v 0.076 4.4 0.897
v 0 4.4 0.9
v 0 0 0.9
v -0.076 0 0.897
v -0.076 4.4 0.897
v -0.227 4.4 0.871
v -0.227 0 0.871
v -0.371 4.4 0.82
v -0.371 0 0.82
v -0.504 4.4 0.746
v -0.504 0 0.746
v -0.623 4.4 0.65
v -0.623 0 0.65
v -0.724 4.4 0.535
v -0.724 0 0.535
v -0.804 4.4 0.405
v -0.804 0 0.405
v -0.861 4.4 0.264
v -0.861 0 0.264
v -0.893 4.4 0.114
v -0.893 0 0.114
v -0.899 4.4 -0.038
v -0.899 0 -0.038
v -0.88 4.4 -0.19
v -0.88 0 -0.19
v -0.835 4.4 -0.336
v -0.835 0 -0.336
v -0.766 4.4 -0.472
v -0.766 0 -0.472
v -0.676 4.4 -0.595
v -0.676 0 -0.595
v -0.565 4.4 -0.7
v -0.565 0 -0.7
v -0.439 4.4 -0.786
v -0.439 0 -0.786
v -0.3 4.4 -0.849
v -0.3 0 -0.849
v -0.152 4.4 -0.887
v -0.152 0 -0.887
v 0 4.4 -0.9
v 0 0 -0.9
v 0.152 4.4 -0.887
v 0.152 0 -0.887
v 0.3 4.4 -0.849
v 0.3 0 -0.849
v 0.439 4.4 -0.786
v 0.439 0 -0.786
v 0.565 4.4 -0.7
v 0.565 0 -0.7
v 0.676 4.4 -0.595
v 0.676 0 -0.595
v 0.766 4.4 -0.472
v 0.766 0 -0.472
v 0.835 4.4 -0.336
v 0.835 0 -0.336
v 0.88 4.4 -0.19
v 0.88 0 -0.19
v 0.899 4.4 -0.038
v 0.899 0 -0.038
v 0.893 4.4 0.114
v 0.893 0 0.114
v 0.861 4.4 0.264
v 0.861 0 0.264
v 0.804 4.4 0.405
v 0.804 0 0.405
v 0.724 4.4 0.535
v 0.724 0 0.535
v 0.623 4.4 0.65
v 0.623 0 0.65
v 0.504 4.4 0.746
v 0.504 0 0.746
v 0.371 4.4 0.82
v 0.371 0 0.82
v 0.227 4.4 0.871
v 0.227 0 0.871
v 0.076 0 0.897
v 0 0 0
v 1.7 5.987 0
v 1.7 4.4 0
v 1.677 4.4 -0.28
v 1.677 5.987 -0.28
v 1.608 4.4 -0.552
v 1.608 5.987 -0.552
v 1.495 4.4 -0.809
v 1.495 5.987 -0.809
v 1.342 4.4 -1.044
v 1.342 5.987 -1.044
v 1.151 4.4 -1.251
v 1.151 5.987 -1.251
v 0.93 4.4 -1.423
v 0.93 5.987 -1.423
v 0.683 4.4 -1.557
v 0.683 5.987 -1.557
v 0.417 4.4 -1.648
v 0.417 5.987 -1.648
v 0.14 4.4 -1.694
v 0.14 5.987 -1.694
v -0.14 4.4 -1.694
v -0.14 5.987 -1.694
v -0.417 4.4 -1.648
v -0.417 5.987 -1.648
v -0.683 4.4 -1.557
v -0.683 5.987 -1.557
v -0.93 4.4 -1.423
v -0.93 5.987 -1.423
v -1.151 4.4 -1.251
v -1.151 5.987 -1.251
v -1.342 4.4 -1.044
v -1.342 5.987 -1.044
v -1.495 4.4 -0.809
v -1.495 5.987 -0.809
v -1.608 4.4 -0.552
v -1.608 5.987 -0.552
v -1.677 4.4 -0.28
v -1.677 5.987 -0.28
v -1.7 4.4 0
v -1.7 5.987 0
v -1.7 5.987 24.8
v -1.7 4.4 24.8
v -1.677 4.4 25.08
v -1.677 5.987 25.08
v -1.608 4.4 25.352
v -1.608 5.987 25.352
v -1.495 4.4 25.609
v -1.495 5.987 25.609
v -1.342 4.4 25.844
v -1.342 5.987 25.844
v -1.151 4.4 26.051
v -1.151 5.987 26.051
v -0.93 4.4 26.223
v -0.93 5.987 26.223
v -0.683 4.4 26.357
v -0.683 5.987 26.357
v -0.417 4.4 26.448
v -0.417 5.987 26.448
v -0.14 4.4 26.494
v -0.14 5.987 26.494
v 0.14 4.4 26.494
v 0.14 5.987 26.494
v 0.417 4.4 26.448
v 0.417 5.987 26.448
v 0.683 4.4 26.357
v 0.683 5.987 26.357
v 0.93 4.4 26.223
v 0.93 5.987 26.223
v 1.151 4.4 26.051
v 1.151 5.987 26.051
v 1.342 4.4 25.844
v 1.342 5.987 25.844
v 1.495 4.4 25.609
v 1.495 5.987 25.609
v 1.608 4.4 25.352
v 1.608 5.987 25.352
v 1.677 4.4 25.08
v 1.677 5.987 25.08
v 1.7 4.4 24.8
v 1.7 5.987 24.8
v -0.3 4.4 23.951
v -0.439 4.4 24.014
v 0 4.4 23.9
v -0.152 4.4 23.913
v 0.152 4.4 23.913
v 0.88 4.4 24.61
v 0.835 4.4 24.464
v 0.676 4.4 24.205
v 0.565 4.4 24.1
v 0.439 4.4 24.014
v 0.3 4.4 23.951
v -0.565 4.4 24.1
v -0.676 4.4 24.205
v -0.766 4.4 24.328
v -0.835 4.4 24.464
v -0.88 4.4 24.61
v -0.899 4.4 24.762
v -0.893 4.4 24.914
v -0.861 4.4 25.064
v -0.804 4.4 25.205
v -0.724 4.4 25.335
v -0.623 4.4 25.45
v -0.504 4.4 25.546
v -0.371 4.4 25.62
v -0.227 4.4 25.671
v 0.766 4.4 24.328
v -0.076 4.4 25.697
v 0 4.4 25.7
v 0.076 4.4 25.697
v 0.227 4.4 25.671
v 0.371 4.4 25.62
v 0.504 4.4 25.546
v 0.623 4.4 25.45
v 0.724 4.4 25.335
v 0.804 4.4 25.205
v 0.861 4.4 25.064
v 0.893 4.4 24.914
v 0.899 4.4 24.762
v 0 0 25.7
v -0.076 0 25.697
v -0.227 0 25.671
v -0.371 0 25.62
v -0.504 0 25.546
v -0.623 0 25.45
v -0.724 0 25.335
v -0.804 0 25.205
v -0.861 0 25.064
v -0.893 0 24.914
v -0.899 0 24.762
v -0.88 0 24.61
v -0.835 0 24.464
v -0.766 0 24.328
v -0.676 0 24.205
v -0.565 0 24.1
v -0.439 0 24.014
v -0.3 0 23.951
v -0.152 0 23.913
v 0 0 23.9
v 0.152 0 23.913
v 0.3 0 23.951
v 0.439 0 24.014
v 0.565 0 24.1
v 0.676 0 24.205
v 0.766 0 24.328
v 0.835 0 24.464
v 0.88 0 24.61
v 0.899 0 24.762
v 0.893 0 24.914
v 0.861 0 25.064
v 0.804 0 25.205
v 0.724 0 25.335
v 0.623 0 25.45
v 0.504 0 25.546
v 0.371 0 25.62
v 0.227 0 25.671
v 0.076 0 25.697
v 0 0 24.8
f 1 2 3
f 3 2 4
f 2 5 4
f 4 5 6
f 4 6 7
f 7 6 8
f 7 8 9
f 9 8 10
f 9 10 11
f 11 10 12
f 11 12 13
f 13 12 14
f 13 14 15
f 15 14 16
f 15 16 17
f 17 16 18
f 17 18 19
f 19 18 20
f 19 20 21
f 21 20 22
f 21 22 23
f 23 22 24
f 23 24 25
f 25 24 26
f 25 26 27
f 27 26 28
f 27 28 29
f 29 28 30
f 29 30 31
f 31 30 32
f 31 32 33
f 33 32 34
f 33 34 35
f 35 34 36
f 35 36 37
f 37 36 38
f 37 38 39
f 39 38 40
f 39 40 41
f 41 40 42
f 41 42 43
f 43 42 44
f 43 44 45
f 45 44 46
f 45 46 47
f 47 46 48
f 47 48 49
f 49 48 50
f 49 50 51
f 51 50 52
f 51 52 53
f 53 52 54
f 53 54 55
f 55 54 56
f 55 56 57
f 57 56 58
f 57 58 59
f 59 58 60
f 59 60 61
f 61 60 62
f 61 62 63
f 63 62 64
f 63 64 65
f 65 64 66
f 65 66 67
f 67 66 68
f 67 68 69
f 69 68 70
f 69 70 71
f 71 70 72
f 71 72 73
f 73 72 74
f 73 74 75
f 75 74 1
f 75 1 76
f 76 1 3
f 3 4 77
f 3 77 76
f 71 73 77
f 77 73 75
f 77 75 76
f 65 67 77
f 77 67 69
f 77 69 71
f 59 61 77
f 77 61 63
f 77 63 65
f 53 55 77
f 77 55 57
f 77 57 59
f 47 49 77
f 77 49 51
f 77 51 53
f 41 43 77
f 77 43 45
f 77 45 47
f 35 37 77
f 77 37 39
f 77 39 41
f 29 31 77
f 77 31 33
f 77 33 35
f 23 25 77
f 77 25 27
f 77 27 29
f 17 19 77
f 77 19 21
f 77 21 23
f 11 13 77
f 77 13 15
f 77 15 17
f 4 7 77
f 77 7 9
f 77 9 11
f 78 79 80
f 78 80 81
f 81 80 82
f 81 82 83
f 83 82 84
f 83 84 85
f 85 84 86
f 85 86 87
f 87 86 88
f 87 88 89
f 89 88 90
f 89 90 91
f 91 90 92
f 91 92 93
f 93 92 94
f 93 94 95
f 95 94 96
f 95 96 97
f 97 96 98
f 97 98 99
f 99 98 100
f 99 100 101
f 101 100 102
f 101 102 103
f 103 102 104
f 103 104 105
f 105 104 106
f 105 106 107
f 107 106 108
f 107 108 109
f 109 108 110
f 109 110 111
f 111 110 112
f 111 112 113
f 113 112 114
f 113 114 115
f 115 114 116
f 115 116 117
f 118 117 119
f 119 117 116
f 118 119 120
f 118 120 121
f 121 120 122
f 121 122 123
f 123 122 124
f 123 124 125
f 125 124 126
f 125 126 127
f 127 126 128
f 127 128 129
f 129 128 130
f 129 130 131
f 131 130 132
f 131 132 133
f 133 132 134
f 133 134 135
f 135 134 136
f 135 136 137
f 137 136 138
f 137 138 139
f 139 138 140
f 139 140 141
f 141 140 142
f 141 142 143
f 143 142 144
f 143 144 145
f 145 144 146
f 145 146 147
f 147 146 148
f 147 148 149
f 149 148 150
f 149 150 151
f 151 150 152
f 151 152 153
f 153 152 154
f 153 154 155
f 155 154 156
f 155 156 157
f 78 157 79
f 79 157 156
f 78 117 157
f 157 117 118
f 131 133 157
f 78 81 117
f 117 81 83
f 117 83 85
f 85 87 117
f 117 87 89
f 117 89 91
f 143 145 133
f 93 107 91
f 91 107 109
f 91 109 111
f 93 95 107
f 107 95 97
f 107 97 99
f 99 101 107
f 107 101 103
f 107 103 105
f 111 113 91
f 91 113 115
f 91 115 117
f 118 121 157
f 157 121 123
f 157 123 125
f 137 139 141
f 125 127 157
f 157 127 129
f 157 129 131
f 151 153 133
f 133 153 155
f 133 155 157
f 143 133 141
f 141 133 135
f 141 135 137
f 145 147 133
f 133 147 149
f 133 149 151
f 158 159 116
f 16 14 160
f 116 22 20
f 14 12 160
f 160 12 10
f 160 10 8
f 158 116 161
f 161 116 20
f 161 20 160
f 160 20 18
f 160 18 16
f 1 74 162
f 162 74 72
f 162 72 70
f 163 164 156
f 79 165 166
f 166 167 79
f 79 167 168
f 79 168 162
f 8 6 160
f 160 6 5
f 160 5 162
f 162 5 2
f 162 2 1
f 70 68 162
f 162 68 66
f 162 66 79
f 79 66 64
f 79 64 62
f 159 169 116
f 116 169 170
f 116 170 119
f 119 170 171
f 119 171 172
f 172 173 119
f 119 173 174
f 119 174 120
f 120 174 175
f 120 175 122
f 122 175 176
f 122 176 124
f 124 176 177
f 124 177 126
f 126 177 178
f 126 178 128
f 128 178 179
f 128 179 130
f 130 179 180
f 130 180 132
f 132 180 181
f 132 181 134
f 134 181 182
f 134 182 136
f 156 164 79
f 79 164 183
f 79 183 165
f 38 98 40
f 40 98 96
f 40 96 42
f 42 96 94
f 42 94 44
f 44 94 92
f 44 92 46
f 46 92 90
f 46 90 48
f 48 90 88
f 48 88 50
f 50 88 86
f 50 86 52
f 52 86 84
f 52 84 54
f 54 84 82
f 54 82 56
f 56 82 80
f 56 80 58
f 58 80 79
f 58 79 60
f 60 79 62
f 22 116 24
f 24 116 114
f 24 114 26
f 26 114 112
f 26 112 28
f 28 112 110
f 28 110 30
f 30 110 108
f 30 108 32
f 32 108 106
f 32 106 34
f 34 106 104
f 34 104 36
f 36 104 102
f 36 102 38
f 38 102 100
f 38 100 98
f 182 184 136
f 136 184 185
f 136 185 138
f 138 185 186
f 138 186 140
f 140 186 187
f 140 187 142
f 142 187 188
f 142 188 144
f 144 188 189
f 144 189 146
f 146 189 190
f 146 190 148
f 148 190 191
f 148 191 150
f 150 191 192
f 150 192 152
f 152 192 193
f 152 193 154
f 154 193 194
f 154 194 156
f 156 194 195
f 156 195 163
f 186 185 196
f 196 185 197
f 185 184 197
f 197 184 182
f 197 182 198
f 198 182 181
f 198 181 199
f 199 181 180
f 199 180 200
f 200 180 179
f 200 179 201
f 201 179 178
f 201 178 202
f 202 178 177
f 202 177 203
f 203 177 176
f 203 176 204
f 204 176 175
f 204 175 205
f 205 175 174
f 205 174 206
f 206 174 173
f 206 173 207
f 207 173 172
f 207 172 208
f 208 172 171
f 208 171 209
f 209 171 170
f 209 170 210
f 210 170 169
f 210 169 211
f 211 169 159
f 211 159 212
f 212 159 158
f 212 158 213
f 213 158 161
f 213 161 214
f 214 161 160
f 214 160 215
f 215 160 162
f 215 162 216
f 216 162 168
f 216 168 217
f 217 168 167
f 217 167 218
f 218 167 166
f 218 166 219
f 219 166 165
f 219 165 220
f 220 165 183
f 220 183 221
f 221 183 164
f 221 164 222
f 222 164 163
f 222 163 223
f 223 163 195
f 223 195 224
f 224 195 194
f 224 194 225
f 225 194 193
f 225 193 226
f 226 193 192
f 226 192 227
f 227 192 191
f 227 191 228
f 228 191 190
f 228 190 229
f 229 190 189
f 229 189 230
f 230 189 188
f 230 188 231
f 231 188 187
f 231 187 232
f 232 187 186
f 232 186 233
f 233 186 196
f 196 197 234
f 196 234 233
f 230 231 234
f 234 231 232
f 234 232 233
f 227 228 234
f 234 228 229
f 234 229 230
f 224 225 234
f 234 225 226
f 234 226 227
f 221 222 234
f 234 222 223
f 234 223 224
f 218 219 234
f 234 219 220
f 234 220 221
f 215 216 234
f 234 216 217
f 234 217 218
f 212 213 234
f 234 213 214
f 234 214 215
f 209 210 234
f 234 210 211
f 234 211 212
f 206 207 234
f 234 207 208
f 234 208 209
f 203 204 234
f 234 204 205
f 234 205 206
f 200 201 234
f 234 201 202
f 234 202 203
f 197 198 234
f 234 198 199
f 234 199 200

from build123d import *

# Parameters (mm, degrees)
SKETCH1_R             = 0.9
BOSS_EXTRUDE1_DEPTH   = 4.4
BOSS_EXTRUDE1_2_DEPTH = 4.4
BOSS_EXTRUDE2_DEPTH   = 1.5875


with BuildPart() as part:
    # Sketch1 → Boss-Extrude1 (new body)
    with BuildSketch(Plane(origin=(0, 0, 0), x_dir=(1, 0, 0), z_dir=(0, 1, 0))):
        with Locations(Location((0, 0, 0), (0, 0, 270))):
            Circle(SKETCH1_R)
    extrude(amount=BOSS_EXTRUDE1_DEPTH)



with BuildPart() as body_2:
    # Sketch1 → Boss-Extrude1 2 (new body)
    with BuildSketch(Plane(origin=(0, 0, 0), x_dir=(1, 0, 0), z_dir=(0, 1, 0))):
        with Locations(Location((0, -24.8, 0), (0, 0, 270))):
            Circle(SKETCH1_R)
    extrude(amount=BOSS_EXTRUDE1_2_DEPTH)


with BuildPart() as part_1:
    add(part.part)

    add(body_2.part)  # Boss-Extrude2 merges body 2
    # Sketch2 → Boss-Extrude2 (add)
    with BuildSketch(Plane(origin=(0, 4.4, 0), x_dir=(1, 0, 0), z_dir=(0, 1, 0))):
        with BuildLine():
            Line((1.7, 0), (1.7, -24.8))
            ThreePointArc((1.7, -24.8), (0, -26.5), (-1.7, -24.8))
            Line((-1.7, -24.8), (-1.7, 0))
            ThreePointArc((-1.7, 0), (0, 1.7), (1.7, 0))
        make_face()
    extrude(amount=BOSS_EXTRUDE2_DEPTH)


solid = part_1.part
